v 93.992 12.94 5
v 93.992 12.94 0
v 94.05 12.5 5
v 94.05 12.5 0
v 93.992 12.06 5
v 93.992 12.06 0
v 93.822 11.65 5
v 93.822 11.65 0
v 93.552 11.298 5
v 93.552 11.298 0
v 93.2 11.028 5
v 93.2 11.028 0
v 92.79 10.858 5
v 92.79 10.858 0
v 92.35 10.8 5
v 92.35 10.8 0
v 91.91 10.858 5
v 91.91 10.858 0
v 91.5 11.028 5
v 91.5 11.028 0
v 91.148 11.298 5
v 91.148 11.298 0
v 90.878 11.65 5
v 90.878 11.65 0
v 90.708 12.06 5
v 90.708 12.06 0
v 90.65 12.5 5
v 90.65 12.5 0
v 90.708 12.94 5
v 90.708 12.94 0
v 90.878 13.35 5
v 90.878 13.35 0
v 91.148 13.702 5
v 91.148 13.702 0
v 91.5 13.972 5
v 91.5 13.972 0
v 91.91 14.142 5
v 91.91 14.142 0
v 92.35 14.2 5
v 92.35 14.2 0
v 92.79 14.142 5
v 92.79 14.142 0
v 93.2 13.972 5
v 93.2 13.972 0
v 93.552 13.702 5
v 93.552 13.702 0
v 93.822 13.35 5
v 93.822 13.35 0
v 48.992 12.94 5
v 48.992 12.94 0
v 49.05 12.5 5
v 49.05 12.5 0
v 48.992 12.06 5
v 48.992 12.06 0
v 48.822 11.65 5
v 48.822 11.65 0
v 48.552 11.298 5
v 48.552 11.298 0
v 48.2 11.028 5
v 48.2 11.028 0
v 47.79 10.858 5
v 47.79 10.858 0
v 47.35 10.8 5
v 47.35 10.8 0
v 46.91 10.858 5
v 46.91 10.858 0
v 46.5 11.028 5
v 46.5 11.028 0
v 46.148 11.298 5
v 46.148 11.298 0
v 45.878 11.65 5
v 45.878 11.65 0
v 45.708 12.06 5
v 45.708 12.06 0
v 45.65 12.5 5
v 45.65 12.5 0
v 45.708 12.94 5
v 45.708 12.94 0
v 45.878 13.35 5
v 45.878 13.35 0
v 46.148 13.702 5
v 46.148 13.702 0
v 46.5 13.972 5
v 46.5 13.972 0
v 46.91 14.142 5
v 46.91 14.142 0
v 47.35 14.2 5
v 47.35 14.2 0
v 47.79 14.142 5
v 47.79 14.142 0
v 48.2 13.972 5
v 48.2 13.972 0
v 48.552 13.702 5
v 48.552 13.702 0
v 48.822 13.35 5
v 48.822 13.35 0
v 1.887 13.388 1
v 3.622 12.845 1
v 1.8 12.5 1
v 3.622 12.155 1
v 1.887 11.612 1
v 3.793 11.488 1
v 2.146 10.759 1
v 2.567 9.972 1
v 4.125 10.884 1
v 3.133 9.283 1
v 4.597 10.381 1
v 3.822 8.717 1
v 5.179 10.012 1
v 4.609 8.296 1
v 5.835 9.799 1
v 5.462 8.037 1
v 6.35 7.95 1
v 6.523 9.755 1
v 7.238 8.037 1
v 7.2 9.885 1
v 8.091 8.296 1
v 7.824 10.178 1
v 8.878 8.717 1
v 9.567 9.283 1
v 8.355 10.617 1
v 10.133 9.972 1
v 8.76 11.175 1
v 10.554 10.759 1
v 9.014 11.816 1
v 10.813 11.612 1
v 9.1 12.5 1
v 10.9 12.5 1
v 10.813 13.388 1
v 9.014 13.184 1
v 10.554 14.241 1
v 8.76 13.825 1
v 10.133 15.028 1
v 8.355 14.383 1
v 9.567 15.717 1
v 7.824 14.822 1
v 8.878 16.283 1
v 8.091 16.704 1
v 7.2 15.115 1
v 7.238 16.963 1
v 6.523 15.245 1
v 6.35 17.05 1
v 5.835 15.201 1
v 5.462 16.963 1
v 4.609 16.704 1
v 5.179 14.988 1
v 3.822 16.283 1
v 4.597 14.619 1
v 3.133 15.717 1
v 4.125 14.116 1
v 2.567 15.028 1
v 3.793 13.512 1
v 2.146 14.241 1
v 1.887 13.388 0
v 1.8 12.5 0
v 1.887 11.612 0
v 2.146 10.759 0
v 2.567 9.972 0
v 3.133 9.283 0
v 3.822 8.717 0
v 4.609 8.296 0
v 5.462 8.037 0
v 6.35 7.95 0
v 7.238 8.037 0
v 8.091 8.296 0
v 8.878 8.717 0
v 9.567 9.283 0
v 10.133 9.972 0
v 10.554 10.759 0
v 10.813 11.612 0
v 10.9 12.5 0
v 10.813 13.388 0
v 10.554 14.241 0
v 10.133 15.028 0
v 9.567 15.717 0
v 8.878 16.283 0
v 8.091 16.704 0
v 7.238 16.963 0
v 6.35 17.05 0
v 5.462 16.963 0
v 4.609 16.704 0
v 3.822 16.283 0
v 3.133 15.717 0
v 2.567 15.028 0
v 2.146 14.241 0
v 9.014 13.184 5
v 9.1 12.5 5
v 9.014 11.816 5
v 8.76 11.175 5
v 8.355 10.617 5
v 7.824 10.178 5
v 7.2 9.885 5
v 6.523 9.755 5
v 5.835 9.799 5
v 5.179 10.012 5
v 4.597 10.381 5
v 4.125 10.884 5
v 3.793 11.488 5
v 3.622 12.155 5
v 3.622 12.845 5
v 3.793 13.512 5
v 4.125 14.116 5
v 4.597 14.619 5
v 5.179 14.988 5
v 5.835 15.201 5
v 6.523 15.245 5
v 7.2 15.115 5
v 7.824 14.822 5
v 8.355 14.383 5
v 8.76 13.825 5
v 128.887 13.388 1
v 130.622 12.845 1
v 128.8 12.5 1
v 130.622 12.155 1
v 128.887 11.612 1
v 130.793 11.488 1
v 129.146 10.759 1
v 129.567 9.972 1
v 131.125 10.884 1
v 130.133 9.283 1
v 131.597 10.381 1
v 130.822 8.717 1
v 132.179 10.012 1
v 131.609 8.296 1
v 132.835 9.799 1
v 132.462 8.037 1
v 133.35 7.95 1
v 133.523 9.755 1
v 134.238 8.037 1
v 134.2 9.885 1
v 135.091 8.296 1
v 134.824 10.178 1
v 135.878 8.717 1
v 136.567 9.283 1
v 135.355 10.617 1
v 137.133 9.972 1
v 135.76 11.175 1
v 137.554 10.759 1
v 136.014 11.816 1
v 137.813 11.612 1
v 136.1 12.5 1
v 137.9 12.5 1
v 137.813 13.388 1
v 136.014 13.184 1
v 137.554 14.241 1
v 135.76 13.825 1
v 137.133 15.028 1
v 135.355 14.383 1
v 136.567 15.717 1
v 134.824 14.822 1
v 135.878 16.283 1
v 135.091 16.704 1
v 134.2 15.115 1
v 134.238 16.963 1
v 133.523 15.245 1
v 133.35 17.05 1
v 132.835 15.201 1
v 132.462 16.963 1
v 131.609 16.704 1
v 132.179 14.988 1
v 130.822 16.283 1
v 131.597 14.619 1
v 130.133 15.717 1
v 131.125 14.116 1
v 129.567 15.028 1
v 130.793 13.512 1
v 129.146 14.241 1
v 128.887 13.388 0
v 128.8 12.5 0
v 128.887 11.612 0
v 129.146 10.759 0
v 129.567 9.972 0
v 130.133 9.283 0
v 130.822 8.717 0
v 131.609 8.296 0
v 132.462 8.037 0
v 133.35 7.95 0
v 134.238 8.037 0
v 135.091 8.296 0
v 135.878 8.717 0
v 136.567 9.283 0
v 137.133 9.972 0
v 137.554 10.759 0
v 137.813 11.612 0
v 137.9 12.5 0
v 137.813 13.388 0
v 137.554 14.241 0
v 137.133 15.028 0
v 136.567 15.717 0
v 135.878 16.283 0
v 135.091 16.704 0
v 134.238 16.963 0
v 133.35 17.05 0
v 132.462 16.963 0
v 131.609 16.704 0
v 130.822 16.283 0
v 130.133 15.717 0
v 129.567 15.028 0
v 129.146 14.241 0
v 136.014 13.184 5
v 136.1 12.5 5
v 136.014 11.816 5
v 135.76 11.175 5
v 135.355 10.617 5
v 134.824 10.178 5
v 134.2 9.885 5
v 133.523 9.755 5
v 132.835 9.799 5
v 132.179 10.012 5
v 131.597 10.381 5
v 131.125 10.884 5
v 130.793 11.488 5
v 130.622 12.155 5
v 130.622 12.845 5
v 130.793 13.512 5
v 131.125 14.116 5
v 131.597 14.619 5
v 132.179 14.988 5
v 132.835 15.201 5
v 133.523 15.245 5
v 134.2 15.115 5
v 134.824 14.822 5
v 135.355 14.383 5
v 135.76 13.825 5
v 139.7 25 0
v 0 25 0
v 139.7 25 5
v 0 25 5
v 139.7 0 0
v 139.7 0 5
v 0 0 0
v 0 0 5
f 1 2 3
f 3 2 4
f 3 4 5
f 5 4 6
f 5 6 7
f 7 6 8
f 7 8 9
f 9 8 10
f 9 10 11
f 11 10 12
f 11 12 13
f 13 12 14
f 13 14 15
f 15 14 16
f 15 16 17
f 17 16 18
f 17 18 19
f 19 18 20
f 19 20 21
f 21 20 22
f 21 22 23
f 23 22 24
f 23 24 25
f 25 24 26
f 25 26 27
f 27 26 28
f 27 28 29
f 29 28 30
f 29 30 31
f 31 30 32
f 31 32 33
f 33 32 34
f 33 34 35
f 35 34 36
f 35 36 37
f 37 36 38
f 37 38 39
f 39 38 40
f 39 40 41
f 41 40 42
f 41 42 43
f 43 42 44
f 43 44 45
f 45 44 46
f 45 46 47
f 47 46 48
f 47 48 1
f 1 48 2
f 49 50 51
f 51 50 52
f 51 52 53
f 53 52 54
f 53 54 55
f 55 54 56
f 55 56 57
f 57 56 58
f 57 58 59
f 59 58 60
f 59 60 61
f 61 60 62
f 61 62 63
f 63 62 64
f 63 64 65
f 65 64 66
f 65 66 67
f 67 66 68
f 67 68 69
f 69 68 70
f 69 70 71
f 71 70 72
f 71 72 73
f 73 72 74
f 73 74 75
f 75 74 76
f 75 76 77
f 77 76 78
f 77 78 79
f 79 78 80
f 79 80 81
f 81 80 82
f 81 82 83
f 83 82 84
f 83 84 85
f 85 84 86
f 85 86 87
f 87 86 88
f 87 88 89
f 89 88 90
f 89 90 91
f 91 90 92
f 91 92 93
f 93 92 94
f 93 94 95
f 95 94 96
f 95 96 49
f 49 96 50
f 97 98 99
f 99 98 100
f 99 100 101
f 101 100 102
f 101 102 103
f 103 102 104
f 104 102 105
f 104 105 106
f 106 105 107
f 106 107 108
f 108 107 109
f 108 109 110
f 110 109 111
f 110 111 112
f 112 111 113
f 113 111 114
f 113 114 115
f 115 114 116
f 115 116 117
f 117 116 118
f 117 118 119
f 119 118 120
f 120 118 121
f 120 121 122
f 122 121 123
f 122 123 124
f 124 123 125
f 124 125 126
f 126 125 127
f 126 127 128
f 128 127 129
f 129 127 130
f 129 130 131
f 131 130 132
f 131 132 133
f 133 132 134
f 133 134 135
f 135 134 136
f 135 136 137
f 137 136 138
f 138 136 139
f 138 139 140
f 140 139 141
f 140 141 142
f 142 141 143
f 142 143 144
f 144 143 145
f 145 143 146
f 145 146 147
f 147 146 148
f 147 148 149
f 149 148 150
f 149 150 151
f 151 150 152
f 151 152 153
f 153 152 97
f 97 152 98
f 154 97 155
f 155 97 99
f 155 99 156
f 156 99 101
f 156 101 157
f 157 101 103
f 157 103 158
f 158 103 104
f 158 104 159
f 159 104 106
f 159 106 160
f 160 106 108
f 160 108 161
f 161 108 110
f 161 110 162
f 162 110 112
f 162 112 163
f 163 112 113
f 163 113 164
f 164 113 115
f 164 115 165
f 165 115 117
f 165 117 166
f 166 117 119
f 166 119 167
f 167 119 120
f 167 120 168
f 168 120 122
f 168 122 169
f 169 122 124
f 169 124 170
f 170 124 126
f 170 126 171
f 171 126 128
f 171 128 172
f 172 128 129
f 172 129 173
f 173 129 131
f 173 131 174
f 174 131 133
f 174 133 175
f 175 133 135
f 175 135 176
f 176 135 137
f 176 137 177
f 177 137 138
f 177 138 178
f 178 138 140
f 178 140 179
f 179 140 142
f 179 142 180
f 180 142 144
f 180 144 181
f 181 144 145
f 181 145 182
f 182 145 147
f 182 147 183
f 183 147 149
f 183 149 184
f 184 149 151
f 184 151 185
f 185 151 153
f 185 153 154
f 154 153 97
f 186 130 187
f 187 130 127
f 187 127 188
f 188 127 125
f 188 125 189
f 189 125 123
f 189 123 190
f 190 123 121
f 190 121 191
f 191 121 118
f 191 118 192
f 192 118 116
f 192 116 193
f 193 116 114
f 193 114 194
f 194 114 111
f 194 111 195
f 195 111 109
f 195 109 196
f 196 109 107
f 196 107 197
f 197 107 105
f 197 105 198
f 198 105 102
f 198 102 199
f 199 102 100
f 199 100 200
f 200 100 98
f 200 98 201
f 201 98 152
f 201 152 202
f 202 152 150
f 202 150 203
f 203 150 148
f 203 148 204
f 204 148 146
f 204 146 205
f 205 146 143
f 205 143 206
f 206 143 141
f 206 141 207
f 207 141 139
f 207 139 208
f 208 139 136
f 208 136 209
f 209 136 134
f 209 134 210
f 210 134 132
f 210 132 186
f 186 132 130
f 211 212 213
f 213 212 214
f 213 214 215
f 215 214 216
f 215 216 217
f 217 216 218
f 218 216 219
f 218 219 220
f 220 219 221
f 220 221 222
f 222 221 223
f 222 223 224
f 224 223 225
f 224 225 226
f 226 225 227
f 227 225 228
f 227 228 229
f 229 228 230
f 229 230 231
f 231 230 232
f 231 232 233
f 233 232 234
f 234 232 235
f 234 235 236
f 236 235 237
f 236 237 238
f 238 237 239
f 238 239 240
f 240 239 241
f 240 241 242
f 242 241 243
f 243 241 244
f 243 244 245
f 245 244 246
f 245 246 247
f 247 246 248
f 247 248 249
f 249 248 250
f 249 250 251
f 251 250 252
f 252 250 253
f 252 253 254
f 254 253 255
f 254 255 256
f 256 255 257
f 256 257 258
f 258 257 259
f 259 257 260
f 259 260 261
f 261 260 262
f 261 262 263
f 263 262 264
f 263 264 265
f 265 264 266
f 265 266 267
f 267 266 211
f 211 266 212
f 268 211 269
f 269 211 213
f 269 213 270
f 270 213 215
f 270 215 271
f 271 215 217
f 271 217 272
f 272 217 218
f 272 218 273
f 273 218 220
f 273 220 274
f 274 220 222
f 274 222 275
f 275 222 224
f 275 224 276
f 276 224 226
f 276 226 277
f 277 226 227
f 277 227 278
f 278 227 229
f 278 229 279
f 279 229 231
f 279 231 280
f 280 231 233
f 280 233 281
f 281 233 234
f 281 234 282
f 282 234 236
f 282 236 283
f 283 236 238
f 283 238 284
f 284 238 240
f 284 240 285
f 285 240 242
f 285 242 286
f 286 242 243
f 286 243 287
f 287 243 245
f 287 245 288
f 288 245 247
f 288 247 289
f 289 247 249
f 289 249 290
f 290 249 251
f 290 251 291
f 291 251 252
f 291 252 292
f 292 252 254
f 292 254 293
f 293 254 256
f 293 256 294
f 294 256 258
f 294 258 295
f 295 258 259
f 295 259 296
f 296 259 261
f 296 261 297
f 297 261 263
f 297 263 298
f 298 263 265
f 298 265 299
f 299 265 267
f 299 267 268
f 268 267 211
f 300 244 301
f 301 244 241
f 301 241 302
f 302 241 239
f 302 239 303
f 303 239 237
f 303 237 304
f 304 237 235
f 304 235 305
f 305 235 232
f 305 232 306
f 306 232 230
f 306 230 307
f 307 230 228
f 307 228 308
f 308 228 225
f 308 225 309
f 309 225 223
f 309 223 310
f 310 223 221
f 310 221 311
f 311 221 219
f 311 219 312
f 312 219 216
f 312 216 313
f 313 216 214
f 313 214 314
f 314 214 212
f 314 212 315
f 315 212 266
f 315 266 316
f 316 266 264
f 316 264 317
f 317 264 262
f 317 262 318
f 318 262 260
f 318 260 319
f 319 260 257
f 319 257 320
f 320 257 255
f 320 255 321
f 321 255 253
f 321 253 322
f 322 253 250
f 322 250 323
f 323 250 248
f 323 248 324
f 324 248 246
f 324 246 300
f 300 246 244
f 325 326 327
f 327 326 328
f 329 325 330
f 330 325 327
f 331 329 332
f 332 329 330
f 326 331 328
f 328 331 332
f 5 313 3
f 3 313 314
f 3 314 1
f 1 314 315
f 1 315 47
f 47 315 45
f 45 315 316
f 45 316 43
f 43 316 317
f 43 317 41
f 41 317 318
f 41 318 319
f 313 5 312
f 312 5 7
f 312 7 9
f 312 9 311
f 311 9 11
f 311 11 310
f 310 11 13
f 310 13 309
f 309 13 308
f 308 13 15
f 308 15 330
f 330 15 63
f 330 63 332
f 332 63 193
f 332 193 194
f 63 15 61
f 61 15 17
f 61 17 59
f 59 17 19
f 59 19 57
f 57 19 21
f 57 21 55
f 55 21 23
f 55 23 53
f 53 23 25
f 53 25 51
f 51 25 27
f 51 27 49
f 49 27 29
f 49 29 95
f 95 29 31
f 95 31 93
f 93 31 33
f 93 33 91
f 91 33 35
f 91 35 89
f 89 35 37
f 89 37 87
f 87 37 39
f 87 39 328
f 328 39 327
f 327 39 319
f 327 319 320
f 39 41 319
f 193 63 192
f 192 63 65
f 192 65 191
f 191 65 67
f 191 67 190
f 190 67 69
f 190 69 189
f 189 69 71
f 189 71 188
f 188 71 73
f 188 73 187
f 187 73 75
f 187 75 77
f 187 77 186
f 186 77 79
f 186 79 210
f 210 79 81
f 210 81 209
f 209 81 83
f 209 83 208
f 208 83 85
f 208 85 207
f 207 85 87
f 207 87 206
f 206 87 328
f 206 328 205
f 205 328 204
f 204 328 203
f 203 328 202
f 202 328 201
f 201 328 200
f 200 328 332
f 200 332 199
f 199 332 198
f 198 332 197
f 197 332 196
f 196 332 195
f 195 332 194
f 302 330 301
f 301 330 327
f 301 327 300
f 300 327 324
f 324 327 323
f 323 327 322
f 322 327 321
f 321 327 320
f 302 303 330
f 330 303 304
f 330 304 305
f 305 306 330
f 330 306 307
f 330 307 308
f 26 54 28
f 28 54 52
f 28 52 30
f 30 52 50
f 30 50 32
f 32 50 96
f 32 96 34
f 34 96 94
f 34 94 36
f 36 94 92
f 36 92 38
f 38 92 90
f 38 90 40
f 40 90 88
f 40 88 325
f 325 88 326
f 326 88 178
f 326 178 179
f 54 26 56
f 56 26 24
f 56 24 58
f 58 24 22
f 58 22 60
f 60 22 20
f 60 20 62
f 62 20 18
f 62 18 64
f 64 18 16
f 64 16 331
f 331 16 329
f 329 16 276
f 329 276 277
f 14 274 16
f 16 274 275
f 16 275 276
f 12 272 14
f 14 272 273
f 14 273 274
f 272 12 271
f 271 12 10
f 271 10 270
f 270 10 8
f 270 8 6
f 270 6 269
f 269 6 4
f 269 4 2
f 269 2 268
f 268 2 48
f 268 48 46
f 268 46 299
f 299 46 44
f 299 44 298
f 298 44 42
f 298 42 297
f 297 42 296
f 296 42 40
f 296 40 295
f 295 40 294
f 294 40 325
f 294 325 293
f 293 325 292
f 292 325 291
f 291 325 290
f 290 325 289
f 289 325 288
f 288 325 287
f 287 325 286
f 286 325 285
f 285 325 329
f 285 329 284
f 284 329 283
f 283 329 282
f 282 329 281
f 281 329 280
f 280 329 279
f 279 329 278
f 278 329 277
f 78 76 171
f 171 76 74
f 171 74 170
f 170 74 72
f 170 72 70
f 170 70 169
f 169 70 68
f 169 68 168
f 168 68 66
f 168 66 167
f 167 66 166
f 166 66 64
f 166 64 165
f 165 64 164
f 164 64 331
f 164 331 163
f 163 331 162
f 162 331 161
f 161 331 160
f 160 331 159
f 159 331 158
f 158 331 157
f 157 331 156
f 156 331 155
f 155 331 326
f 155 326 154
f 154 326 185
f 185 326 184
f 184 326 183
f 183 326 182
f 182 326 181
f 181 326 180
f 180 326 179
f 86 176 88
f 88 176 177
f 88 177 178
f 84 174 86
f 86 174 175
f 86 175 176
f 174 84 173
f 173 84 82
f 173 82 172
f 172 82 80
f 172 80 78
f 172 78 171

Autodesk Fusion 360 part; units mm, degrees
sketch "Sketch1" plane through (0, 0, 0) normal (0, 0, 1) x (1, 0, 0)
  line L0 (0, 0) -> (139.7, 0)
  line L1 (139.7, 0) -> (139.7, 25)
  line L2 (139.7, 25) -> (0, 25)
  line L3 (0, 25) -> (0, 0)
  dimension "d1" = 139.7
  dimension "d2" = 25
extrude "Extrude1" add sketch "Sketch1" along normal blind 5
sketch "Sketch2" plane through (0, 0, 0) normal (0, 0, 1) x (1, 0, 0)
  point P0 (6.35, 12.5)
  point P1 (133.35, 12.5)
hole "Hole1" at (6.35, 12.5, 0) at (133.35, 12.5, 0) direction (0, 0, 1) diameter 5.5 depth 13 tip angle 118 counterbore diameter 9.1 counterbore depth 1
sketch "Sketch4" plane through (0, 0, 0) normal (0, 0, -1) x (1, 0, 0)
  circle A0 centre (6.35, -12.5) radius 4.55
  circle A1 centre (133.35, -12.5) radius 4.55
  line L0 (0, 0) -> (0, -25)
  line L1 (0, -25) -> (139.7, -25)
  line L2 (139.7, -25) -> (139.7, 0)
  line L3 (139.7, 0) -> (0, 0)
  point P0 (47.35, -12.5)
  point P1 (92.35, -12.5)
hole "Hole3" at (92.35, 12.5, 0) at (47.35, 12.5, 0) direction (0, 0, 1) diameter 3.4 depth 13 tip angle 118
